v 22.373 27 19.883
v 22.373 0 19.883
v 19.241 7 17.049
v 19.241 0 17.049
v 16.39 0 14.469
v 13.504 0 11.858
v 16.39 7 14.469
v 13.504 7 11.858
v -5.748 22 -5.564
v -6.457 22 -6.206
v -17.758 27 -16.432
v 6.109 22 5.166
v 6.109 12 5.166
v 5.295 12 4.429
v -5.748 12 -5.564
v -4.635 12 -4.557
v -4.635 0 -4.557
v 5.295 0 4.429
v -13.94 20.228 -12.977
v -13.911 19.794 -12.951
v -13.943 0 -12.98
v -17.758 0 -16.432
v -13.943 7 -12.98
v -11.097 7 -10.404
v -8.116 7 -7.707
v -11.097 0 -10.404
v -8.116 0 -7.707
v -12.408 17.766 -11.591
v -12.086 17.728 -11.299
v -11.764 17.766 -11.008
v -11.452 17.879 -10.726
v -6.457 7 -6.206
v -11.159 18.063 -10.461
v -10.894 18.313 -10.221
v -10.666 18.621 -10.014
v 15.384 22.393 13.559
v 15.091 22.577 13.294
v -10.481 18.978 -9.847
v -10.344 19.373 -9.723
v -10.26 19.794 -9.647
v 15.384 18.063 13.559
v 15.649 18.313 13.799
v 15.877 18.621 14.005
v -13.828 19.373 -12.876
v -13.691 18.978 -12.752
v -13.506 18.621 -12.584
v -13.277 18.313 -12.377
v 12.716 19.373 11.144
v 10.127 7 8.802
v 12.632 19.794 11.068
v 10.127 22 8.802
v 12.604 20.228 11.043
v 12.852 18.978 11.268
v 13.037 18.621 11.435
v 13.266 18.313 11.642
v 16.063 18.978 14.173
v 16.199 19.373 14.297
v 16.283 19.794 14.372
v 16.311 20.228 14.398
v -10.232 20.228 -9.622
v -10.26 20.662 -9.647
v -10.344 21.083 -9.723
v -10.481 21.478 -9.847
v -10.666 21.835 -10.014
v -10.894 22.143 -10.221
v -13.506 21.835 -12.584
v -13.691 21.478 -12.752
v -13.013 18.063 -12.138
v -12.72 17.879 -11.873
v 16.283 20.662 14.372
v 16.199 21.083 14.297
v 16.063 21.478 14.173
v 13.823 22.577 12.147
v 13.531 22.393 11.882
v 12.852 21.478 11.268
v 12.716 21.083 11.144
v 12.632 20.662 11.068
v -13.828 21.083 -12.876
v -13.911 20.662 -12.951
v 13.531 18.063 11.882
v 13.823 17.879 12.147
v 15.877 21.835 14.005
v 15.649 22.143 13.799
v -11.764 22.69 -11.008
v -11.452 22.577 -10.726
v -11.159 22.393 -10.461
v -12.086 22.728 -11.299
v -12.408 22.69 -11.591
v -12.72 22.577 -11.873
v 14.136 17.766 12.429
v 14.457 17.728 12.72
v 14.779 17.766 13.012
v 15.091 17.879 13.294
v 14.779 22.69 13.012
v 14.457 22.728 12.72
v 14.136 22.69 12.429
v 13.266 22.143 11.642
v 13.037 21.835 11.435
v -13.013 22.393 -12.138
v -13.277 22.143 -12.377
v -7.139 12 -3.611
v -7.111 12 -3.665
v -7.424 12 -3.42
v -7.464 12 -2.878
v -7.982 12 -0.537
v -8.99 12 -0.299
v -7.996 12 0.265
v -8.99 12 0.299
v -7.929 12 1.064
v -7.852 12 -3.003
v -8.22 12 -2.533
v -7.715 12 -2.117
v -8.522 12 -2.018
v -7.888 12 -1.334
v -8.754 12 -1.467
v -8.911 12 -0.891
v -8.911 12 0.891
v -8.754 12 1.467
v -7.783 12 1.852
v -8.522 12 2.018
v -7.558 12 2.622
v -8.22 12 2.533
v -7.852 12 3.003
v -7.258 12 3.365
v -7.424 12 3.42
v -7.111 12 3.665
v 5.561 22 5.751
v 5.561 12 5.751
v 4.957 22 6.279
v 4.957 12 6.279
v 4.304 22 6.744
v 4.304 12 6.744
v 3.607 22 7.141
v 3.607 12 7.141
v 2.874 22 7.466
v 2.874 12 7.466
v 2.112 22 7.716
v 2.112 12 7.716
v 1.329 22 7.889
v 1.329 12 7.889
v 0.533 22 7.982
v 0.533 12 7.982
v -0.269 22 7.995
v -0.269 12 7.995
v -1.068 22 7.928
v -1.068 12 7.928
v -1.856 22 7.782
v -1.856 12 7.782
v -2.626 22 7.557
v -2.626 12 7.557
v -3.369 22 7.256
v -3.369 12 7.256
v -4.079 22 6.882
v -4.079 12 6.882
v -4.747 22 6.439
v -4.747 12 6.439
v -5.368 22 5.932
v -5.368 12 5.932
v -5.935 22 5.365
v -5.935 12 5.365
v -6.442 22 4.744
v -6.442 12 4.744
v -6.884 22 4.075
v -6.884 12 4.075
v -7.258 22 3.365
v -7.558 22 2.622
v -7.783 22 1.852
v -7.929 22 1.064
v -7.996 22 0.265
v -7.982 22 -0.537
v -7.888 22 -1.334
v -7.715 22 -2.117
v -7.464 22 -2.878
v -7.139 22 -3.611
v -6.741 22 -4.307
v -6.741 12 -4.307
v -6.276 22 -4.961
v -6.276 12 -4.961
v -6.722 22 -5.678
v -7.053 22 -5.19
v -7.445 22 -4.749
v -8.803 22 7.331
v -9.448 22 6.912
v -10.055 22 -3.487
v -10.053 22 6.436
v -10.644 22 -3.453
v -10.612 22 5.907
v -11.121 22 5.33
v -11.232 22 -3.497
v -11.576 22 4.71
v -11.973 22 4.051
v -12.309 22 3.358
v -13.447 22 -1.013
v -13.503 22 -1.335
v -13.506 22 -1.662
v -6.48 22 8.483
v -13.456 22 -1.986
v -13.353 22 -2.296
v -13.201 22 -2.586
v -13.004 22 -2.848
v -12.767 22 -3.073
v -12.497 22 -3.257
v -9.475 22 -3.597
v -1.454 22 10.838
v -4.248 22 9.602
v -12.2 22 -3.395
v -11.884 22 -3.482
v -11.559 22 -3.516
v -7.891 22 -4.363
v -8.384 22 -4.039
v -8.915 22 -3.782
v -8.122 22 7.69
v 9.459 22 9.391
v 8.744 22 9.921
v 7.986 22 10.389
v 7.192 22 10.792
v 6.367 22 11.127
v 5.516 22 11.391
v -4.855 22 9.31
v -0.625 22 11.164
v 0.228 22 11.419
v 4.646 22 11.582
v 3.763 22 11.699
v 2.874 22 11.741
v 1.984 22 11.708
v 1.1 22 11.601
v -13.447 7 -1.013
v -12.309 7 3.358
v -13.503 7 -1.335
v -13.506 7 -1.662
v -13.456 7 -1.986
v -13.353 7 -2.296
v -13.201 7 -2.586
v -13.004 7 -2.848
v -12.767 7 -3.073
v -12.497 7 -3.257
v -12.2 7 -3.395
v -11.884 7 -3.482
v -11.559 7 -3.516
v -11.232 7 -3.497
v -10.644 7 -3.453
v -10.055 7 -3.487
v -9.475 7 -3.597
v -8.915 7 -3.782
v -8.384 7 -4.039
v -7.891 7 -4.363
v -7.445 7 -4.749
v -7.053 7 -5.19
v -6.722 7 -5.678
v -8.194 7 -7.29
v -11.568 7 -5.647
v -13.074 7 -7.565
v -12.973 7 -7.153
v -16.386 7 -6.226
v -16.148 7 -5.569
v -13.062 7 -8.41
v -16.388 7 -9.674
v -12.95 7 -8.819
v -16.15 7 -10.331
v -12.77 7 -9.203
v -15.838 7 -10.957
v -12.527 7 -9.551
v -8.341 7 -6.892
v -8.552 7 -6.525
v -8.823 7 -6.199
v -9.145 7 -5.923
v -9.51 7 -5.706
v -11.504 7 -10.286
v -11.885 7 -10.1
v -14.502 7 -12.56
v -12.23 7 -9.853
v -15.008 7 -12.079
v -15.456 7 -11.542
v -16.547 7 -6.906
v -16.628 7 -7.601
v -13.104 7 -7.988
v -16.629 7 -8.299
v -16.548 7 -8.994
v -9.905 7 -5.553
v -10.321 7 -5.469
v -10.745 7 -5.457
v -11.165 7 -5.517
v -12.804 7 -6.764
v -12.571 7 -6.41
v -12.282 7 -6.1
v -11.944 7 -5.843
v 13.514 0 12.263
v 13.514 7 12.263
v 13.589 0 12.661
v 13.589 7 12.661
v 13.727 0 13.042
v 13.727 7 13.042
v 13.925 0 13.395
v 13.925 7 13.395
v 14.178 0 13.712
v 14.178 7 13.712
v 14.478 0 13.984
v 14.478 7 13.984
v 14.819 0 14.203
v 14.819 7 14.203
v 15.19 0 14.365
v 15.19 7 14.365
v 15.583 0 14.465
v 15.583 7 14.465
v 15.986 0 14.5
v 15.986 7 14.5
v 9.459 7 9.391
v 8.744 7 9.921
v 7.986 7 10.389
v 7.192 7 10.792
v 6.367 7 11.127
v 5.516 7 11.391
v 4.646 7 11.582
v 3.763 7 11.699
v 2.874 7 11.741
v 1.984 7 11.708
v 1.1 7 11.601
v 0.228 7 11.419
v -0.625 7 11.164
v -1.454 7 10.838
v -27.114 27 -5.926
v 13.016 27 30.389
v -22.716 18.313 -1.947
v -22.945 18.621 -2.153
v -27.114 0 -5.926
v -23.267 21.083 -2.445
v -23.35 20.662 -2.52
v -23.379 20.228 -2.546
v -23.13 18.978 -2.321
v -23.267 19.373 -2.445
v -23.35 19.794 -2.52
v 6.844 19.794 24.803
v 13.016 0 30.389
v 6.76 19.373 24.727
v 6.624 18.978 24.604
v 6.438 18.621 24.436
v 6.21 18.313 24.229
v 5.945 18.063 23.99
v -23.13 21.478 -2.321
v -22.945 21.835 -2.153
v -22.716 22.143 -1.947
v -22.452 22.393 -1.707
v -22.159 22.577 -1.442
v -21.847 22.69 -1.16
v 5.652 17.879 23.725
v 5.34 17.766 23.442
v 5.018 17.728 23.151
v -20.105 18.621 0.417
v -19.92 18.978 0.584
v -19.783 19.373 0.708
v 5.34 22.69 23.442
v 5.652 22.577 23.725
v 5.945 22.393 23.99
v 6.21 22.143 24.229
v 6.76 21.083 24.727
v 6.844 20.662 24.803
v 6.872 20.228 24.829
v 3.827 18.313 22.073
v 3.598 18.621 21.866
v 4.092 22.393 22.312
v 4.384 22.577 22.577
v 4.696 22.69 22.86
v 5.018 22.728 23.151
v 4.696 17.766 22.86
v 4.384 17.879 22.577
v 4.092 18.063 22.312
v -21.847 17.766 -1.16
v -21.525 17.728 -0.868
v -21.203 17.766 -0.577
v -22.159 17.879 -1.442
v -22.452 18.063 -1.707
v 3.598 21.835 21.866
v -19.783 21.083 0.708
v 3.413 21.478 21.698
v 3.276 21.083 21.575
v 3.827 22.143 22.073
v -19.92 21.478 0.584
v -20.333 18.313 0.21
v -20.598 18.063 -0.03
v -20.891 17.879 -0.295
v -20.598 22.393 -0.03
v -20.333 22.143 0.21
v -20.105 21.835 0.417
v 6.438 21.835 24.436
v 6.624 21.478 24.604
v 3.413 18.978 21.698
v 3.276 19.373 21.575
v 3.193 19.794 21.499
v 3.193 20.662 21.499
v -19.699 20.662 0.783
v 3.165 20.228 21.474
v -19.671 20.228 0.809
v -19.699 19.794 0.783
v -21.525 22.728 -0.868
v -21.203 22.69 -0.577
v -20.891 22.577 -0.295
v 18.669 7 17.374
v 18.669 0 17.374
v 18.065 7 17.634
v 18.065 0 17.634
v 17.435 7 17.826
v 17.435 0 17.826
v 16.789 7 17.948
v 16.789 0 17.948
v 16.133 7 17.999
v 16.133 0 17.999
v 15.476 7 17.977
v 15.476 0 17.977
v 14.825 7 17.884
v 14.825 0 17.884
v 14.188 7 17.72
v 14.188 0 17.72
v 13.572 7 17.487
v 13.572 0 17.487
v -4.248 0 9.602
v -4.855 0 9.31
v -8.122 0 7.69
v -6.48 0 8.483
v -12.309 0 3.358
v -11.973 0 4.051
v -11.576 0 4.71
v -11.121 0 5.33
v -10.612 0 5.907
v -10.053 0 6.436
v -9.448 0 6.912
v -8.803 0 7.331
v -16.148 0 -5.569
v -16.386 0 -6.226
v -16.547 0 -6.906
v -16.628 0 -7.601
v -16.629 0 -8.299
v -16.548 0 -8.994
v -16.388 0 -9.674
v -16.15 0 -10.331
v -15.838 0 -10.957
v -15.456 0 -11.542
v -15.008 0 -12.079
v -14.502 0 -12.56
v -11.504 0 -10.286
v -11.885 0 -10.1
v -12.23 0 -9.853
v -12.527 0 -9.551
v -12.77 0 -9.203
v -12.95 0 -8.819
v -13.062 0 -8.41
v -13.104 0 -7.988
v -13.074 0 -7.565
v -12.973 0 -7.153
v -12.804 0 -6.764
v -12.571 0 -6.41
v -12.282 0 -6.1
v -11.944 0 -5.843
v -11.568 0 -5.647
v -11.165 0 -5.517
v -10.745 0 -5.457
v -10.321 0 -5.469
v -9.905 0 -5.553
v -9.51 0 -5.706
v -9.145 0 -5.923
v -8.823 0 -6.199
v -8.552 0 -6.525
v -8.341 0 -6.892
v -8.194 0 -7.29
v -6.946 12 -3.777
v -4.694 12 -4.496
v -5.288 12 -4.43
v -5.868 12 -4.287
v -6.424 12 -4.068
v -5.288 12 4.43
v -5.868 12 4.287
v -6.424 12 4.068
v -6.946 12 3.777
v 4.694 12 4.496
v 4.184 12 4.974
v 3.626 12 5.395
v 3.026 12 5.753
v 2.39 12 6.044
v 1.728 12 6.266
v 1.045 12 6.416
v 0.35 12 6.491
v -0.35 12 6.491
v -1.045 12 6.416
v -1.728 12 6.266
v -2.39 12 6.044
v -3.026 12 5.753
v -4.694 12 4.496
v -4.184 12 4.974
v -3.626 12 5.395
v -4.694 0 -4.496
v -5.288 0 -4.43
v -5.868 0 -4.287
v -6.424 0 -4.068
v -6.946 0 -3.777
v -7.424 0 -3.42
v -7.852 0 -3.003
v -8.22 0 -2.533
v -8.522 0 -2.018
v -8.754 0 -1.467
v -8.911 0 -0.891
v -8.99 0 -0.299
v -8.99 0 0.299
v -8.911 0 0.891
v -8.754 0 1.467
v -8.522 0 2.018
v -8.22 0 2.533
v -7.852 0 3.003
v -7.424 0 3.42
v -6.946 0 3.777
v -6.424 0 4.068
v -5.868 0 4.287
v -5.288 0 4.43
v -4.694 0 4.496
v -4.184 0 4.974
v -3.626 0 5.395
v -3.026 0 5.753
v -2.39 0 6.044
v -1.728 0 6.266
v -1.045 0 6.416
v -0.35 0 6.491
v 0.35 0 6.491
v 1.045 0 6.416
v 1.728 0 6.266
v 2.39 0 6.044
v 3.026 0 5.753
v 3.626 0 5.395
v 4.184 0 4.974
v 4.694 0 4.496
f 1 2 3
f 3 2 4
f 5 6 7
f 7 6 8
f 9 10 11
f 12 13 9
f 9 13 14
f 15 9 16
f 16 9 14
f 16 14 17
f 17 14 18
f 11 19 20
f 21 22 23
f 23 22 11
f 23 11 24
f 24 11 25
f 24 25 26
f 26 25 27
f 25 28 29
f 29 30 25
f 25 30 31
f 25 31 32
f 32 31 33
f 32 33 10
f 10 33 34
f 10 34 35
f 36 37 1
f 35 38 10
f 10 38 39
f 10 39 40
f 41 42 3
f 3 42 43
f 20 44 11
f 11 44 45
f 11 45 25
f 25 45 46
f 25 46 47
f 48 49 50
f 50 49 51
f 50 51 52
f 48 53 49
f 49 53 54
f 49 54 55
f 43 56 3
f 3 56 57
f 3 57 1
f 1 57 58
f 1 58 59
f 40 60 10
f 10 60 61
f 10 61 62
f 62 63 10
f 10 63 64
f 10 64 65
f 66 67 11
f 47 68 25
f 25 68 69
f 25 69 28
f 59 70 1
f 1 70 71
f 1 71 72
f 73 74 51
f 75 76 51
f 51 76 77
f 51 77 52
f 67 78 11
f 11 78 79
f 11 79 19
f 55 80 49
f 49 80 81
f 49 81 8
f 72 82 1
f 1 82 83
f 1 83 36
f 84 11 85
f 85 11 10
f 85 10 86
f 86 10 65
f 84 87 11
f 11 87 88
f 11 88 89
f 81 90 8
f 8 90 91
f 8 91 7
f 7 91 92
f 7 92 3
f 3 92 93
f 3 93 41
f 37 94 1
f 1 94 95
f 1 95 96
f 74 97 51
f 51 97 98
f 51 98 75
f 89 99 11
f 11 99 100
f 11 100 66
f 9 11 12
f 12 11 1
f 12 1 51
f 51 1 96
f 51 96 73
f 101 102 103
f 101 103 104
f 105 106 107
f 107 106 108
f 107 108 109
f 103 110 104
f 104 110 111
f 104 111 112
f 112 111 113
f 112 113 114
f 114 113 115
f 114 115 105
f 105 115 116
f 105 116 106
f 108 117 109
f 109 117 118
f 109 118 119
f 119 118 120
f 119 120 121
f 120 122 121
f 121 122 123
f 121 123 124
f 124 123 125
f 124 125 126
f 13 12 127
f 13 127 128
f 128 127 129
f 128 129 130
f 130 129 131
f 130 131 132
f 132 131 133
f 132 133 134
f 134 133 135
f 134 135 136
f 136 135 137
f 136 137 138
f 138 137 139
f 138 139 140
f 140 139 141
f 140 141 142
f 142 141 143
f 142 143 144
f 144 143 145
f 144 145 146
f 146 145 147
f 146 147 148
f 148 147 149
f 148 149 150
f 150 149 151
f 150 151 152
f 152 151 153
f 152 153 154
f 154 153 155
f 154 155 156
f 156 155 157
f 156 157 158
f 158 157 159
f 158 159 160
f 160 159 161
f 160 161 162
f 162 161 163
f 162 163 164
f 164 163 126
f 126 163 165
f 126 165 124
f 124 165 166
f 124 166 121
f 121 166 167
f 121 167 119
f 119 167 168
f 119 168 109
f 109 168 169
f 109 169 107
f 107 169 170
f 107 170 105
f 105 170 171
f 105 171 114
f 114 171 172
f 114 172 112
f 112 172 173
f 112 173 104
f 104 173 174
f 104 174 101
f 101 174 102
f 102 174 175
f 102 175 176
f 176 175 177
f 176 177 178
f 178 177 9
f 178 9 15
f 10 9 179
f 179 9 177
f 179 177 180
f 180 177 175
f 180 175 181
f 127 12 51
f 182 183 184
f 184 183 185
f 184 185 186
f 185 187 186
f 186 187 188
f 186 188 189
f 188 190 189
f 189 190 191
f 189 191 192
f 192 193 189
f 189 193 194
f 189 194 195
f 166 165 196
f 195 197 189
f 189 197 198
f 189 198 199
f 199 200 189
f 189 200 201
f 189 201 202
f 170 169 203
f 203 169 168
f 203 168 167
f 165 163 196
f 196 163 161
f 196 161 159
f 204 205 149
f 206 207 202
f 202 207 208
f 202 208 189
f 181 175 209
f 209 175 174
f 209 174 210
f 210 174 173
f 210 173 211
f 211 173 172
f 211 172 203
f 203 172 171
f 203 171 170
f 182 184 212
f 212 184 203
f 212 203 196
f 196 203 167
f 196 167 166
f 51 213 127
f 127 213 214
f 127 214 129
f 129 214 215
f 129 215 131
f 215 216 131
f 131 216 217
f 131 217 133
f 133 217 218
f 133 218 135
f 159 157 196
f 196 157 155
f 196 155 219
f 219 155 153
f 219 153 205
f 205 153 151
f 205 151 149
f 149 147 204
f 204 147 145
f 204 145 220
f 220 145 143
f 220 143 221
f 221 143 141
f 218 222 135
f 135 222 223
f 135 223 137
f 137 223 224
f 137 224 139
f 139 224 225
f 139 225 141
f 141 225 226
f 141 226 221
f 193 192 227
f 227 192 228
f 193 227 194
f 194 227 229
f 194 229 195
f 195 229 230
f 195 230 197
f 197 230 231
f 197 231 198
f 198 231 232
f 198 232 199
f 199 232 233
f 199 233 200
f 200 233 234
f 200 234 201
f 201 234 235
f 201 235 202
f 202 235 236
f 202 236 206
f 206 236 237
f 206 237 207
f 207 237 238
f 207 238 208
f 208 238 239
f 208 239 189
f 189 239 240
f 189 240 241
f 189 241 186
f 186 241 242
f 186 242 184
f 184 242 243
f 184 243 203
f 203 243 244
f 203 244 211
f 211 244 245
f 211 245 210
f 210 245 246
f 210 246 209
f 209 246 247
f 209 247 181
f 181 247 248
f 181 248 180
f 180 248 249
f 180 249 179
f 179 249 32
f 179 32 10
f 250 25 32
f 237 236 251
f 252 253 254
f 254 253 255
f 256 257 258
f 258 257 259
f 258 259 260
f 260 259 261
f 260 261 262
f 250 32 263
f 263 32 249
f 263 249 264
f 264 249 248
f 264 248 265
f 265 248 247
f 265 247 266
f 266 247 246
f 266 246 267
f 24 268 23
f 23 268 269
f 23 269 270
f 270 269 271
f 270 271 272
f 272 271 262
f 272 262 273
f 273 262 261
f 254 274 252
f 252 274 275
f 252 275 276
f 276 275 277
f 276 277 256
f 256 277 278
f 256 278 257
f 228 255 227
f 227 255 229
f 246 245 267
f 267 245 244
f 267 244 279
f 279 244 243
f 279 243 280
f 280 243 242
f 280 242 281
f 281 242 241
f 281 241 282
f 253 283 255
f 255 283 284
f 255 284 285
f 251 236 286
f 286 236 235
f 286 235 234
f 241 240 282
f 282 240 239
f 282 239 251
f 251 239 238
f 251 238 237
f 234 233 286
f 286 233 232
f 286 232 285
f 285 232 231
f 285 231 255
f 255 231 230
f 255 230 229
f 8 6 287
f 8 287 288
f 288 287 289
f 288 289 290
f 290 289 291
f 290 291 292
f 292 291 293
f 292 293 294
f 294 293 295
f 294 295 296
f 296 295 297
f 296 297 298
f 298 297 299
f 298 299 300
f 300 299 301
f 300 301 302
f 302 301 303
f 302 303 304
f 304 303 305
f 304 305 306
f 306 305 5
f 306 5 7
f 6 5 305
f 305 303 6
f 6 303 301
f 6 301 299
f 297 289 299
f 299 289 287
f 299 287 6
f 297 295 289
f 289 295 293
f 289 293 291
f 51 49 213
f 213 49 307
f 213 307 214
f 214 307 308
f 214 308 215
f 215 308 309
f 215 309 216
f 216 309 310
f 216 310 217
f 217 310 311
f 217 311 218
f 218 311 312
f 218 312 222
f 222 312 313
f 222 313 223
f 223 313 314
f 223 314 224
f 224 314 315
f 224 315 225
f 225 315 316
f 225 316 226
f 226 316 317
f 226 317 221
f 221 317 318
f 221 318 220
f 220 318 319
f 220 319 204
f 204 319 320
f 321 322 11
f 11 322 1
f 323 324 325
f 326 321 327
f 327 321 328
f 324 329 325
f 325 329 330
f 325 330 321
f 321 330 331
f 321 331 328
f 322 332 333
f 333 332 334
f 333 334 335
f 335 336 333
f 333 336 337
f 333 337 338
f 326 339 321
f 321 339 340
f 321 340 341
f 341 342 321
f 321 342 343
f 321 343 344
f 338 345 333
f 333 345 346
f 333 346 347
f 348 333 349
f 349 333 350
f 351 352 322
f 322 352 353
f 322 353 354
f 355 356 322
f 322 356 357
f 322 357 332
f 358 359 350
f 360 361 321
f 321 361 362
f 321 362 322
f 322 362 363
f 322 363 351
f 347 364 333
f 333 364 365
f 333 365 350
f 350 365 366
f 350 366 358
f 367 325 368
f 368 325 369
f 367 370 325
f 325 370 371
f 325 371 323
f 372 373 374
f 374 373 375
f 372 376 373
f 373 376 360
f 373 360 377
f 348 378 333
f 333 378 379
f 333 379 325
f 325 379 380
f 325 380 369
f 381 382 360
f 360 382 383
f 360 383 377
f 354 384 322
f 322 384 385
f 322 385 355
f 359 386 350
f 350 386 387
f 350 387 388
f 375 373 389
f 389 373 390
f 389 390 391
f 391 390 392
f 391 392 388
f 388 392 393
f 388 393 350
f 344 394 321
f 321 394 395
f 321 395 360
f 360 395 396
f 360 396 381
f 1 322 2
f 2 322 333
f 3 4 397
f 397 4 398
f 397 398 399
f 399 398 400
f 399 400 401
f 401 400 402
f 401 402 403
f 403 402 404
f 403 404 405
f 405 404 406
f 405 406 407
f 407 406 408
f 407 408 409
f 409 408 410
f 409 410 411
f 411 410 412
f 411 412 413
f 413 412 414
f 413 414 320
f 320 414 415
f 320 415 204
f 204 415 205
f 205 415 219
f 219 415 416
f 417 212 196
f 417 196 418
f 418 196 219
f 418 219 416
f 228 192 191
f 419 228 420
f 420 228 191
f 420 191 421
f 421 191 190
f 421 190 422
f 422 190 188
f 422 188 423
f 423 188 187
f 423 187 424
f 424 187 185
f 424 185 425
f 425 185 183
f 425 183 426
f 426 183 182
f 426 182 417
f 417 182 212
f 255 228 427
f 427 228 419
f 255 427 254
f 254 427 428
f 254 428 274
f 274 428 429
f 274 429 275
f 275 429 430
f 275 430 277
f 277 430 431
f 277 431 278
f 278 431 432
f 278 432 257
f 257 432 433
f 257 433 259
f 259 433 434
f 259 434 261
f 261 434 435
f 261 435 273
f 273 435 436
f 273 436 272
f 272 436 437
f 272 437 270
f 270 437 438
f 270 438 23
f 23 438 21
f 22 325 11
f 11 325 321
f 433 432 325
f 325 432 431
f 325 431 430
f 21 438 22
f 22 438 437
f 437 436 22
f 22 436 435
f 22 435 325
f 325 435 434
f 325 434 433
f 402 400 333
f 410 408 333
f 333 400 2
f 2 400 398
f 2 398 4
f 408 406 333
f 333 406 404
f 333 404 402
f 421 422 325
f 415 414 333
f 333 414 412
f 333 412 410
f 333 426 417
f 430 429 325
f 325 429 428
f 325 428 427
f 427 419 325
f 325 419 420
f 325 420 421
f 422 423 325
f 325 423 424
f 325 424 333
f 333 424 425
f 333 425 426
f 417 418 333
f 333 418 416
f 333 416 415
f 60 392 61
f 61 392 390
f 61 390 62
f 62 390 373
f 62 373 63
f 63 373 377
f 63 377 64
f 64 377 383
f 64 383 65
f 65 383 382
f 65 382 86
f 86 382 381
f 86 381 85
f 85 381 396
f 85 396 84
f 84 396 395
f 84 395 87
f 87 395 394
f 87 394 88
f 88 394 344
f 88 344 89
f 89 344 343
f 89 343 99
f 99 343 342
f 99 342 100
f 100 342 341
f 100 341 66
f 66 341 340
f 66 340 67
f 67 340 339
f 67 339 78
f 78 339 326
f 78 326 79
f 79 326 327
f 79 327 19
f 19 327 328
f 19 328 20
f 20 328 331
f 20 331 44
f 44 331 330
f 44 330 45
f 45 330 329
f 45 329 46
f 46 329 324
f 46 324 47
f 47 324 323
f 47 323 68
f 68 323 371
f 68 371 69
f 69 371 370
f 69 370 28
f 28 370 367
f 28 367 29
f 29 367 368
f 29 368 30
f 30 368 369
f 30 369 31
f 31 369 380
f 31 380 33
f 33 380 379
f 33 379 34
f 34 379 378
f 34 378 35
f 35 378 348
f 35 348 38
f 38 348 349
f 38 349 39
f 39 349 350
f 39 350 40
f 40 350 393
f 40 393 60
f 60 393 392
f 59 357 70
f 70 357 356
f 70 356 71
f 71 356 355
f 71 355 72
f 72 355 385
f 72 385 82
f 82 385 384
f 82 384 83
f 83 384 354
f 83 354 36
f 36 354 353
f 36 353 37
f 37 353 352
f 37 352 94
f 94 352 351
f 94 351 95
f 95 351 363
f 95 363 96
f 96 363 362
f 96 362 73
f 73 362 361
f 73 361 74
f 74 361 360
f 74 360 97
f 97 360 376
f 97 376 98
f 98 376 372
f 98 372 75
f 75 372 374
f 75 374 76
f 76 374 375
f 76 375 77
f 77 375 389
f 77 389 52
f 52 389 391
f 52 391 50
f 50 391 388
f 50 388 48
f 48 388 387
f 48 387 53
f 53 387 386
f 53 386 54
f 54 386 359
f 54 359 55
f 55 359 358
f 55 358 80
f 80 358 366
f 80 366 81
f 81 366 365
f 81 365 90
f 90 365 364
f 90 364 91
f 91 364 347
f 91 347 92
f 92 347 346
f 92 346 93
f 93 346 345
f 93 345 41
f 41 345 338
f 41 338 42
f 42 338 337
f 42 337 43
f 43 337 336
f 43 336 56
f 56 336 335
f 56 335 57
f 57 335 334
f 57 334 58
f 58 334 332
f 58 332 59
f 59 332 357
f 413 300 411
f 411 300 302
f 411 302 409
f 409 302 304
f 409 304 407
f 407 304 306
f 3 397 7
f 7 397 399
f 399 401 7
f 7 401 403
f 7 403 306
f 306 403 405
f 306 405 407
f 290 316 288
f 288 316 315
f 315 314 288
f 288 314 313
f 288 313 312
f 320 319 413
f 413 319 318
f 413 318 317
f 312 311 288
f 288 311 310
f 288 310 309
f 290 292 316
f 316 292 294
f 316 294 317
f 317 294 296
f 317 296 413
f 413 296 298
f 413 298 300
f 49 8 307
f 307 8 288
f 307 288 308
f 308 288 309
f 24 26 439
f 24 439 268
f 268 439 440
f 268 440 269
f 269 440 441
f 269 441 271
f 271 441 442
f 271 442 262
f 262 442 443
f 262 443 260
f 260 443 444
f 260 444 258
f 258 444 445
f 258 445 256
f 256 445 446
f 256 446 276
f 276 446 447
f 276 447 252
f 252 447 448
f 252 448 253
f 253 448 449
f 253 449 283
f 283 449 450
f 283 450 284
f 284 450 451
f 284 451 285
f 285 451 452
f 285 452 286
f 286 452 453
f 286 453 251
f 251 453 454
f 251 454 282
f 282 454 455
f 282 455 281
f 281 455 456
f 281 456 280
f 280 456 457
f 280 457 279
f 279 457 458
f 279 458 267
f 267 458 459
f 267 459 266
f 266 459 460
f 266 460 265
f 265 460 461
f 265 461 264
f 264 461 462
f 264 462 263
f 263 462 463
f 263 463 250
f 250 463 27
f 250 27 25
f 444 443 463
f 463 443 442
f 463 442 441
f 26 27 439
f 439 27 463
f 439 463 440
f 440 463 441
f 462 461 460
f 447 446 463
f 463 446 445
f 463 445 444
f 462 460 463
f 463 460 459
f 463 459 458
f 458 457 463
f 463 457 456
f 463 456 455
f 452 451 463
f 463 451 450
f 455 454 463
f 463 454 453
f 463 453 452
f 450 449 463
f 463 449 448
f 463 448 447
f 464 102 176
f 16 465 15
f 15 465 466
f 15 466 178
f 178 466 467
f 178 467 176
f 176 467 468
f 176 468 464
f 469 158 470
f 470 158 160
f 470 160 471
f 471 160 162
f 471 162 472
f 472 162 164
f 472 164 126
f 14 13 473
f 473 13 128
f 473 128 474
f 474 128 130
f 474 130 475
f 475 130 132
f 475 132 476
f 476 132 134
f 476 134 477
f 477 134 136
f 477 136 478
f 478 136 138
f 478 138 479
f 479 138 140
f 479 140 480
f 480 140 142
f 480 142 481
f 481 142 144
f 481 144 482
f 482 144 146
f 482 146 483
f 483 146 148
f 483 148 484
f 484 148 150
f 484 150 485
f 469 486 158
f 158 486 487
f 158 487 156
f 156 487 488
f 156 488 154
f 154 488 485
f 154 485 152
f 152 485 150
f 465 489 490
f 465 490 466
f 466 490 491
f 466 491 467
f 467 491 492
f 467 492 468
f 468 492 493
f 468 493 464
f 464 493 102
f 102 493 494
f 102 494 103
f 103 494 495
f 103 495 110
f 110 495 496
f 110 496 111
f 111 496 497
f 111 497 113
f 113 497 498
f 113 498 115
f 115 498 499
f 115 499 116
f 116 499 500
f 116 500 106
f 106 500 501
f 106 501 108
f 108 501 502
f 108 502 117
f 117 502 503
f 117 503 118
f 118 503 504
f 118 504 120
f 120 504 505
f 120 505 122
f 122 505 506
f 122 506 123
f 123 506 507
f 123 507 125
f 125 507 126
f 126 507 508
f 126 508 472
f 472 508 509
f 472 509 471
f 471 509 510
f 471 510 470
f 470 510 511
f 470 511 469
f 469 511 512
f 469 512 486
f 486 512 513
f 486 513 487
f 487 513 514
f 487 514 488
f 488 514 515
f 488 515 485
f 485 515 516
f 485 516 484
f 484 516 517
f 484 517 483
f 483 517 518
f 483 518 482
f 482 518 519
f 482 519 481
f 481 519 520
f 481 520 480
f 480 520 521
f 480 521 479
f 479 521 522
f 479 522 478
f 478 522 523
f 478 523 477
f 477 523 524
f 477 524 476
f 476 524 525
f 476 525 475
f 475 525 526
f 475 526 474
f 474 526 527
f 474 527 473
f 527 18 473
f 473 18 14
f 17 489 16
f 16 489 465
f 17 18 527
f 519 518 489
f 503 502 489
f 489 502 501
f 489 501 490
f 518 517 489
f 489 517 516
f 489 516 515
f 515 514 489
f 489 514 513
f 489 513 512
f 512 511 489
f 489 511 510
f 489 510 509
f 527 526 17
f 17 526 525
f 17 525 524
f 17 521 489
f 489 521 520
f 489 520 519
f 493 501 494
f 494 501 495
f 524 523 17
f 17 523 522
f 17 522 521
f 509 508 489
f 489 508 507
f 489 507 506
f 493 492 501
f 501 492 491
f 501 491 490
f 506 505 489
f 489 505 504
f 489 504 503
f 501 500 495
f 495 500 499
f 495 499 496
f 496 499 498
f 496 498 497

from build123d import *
from build123d.topology import SkipClean

# Parameters (mm, degrees)
SKETCH2_R           = 2.5
BOSS_EXTRUDE1_DEPTH = 7
FILLET1_R           = 90
BOSS_EXTRUDE3_DEPTH = 15
SKETCH4_R           = 8
CUT_EXTRUDE1_DEPTH  = 10
BOSS_EXTRUDE4_START = 10
BOSS_EXTRUDE4_DEPTH = 10
BOSS_EXTRUDE5_DEPTH = 27
SKETCH7_R           = 2.5
CUT_EXTRUDE2_DEPTH  = 37
INTERSECT3_DEPTH    = 27


with BuildPart() as part:
    # Sketch2 → Boss-Extrude1 (new body)
    with BuildSketch(Plane(origin=(0, 0, 0), x_dir=(1, 0, 0), z_dir=(0, 1, 0))):
        with BuildLine():
            Line((-4.24846021, -9.602113613), (13.572308451, -17.486922065))
            ThreePointArc((13.572308451, -17.486922065), (20.638500285, -15.805826469), (20.907079545, -8.547382103))
            Line((20.907079545, -8.547382103), (11.451696022, 4.891208687))
            ThreePointArc((11.451696022, 4.891208687), (9.270724445, 7.034926316), (6.472222222, 8.268031175))
            ThreePointArc((6.472222222, 8.268031175), (4.86754966, 9.30359932), (3.101845071, 10.031378627))
            Line((3.101845071, 10.031378627), (-8.821699821, 13.718308443))
            ThreePointArc((-8.821699821, 13.718308443), (-15.091857172, 11.987583677), (-16.147811194, 5.569231667))
            Line((-16.147811194, 5.569231667), (-12.308520784, -3.358124948))
            ThreePointArc((-12.308520784, -3.358124948), (-9.971976629, -6.504419403), (-6.472222222, -8.268031175))
            ThreePointArc((-6.472222222, -8.268031175), (-5.401685102, -9.003987898), (-4.24846021, -9.602113613))
        make_face()
        with Locations(Location((16, -12, 0), (0, 0, 270))):
            Circle(SKETCH2_R, mode=Mode.SUBTRACT)
        with Locations(Location((-10.604337088, 7.953252816, 0), (0, 0, 270))):
            Circle(SKETCH2_R, mode=Mode.SUBTRACT)
        with BuildLine():
            ThreePointArc((-4.694444444, -4.495797077), (0, -6.5), (4.694444444, -4.495797077))
            ThreePointArc((4.694444444, -4.495797077), (9, 0), (4.694444444, 4.495797077))
            ThreePointArc((4.694444444, 4.495797077), (0, 6.5), (-4.694444444, 4.495797077))
            ThreePointArc((-4.694444444, 4.495797077), (-9, 0), (-4.694444444, -4.495797077))
        make_face(mode=Mode.SUBTRACT)
    extrude(amount=BOSS_EXTRUDE1_DEPTH)

    # Fillet1
    fillet1_edges = [part.edges().sort_by_distance(p)[0] for p in [
        (6.472222222, 3.5, -8.268031175),
        (-6.472222222, 3.5, 8.268031175),
    ]]
    fillet(fillet1_edges, radius=FILLET1_R)

    # Sketch3 → Boss-Extrude3 (add)
    with BuildSketch(Plane(origin=(0, 7, 0), x_dir=(1, 0, 0), z_dir=(0, 1, 0))):
        with BuildLine():
            Line((-13.446880098, 1.012795393), (-12.308520784, -3.358124948))
            ThreePointArc((-12.308520784, -3.358124948), (-10.611843956, -5.907229762), (-8.121968415, -7.689690813))
            ThreePointArc((-8.121968415, -7.689690813), (-6.480430757, -8.483296944), (-4.855306799, -9.309994408))
            ThreePointArc((-4.855306799, -9.309994408), (-4.554226262, -9.460920841), (-4.24846021, -9.602113613))
            Line((-4.24846021, -9.602113613), (-1.454246479, -10.838414946))
            ThreePointArc((-1.454246479, -10.838414946), (10.979115699, -7.880432641), (11.451696022, 4.891208687))
            ThreePointArc((11.451696022, 4.891208687), (9.968863726, 6.507036925), (8.121968415, 7.689690813))
            ThreePointArc((8.121968415, 7.689690813), (6.480430757, 8.483296944), (4.855306799, 9.309994408))
            ThreePointArc((4.855306799, 9.309994408), (3.994892398, 9.710346787), (3.101845071, 10.031378627))
            Line((3.101845071, 10.031378627), (-3.895223267, 11.305534387))
            ThreePointArc((-3.895223267, 11.305534387), (-5.691953988, 10.727471116), (-6.207623157, 8.911848981))
            ThreePointArc((-6.207623157, 8.911848981), (-7.30582589, 4.892236012), (-11.232333003, 3.497288147))
            ThreePointArc((-11.232333003, 3.497288147), (-13.004436636, 2.847636589), (-13.446880098, 1.012795393))
        make_face()
        with BuildLine():
            ThreePointArc((4.694444444, -4.495797077), (9, 0), (4.694444444, 4.495797077))
            ThreePointArc((4.694444444, 4.495797077), (0, 6.5), (-4.694444444, 4.495797077))
            ThreePointArc((-4.694444444, 4.495797077), (-9, 0), (-4.694444444, -4.495797077))
            ThreePointArc((-4.694444444, -4.495797077), (0, -6.5), (4.694444444, -4.495797077))
        make_face(mode=Mode.SUBTRACT)
    extrude(amount=BOSS_EXTRUDE3_DEPTH)

    # Sketch4 → Cut-Extrude1 (cut)
    with BuildSketch(Plane(origin=(0, 22, 0), x_dir=(1, 0, 0), z_dir=(0, 1, 0))):
        Circle(SKETCH4_R)
    extrude(amount=-CUT_EXTRUDE1_DEPTH, mode=Mode.SUBTRACT)

    # Sketch5 → Boss-Extrude4 (add)
    with SkipClean():  # the faces are left unmerged after this step: merging them gives an invalid solid
        with BuildSketch(Plane(origin=(0, 12, 0), x_dir=(1, 0, 0), z_dir=(0, 1, 0)).offset(BOSS_EXTRUDE4_START)):
            with BuildLine():
                ThreePointArc((-7.111111111, 3.664982778), (-8, 0), (-7.111111111, -3.664982778))
                ThreePointArc((-7.111111111, -3.664982778), (-9, 0), (-7.111111111, 3.664982778))
            make_face()
            with BuildLine():
                ThreePointArc((7.111111111, -3.664982778), (9, 0), (7.111111111, 3.664982778))
                ThreePointArc((7.111111111, 3.664982778), (8, 0), (7.111111111, -3.664982778))
            make_face()
        extrude(amount=-BOSS_EXTRUDE4_DEPTH)


with BuildPart() as body_2:
    # Sketch6 → Boss-Extrude5 (new body)
    with BuildSketch(Plane(origin=(0, 0, 0), x_dir=(-1, 0, 0), z_dir=(0, -1, 0))):
        Polygon((8.401052482, 26.937158796), (-31.729302738, -9.377746691), (-13.016359271, -30.388770935), (27.113995949, 5.926134553), align=None)
    extrude(amount=-BOSS_EXTRUDE5_DEPTH)

    # Sketch7 → Cut-Extrude2 (cut)
    with BuildSketch(Plane(origin=(-9.25873614, 0, 10.23151142), x_dir=(0.7414761288495602, 0, 0.670979247329059), z_dir=(-0.670979247329059, 0, 0.7414761288495602))):
        with Locations((-16.542969249, 20.228212297)):
            Circle(SKETCH7_R)
        with Locations((19.254983261, 20.228212297)):
            Circle(SKETCH7_R)
    extrude(amount=-CUT_EXTRUDE2_DEPTH, mode=Mode.SUBTRACT)

    # Intersect1: read off the stored shape, not the designer's step
    # Intersect1: cut part
    add(part.part, mode=Mode.SUBTRACT)

    # Intersect3: read off the stored shape, not the designer's step
    # Intersect3 outline → Intersect3 (cut)
    with BuildSketch(Plane(origin=(0, 0, 0), x_dir=(1, 0, 0), z_dir=(0, 1, 0))):
        Polygon((22.372831004, -19.883258813), (31.729302738, -9.377746691), (-8.401052482, 26.937158796), (-17.757524215, 16.431646675), align=None)
    extrude(amount=INTERSECT3_DEPTH, mode=Mode.SUBTRACT)


solid = body_2.part
